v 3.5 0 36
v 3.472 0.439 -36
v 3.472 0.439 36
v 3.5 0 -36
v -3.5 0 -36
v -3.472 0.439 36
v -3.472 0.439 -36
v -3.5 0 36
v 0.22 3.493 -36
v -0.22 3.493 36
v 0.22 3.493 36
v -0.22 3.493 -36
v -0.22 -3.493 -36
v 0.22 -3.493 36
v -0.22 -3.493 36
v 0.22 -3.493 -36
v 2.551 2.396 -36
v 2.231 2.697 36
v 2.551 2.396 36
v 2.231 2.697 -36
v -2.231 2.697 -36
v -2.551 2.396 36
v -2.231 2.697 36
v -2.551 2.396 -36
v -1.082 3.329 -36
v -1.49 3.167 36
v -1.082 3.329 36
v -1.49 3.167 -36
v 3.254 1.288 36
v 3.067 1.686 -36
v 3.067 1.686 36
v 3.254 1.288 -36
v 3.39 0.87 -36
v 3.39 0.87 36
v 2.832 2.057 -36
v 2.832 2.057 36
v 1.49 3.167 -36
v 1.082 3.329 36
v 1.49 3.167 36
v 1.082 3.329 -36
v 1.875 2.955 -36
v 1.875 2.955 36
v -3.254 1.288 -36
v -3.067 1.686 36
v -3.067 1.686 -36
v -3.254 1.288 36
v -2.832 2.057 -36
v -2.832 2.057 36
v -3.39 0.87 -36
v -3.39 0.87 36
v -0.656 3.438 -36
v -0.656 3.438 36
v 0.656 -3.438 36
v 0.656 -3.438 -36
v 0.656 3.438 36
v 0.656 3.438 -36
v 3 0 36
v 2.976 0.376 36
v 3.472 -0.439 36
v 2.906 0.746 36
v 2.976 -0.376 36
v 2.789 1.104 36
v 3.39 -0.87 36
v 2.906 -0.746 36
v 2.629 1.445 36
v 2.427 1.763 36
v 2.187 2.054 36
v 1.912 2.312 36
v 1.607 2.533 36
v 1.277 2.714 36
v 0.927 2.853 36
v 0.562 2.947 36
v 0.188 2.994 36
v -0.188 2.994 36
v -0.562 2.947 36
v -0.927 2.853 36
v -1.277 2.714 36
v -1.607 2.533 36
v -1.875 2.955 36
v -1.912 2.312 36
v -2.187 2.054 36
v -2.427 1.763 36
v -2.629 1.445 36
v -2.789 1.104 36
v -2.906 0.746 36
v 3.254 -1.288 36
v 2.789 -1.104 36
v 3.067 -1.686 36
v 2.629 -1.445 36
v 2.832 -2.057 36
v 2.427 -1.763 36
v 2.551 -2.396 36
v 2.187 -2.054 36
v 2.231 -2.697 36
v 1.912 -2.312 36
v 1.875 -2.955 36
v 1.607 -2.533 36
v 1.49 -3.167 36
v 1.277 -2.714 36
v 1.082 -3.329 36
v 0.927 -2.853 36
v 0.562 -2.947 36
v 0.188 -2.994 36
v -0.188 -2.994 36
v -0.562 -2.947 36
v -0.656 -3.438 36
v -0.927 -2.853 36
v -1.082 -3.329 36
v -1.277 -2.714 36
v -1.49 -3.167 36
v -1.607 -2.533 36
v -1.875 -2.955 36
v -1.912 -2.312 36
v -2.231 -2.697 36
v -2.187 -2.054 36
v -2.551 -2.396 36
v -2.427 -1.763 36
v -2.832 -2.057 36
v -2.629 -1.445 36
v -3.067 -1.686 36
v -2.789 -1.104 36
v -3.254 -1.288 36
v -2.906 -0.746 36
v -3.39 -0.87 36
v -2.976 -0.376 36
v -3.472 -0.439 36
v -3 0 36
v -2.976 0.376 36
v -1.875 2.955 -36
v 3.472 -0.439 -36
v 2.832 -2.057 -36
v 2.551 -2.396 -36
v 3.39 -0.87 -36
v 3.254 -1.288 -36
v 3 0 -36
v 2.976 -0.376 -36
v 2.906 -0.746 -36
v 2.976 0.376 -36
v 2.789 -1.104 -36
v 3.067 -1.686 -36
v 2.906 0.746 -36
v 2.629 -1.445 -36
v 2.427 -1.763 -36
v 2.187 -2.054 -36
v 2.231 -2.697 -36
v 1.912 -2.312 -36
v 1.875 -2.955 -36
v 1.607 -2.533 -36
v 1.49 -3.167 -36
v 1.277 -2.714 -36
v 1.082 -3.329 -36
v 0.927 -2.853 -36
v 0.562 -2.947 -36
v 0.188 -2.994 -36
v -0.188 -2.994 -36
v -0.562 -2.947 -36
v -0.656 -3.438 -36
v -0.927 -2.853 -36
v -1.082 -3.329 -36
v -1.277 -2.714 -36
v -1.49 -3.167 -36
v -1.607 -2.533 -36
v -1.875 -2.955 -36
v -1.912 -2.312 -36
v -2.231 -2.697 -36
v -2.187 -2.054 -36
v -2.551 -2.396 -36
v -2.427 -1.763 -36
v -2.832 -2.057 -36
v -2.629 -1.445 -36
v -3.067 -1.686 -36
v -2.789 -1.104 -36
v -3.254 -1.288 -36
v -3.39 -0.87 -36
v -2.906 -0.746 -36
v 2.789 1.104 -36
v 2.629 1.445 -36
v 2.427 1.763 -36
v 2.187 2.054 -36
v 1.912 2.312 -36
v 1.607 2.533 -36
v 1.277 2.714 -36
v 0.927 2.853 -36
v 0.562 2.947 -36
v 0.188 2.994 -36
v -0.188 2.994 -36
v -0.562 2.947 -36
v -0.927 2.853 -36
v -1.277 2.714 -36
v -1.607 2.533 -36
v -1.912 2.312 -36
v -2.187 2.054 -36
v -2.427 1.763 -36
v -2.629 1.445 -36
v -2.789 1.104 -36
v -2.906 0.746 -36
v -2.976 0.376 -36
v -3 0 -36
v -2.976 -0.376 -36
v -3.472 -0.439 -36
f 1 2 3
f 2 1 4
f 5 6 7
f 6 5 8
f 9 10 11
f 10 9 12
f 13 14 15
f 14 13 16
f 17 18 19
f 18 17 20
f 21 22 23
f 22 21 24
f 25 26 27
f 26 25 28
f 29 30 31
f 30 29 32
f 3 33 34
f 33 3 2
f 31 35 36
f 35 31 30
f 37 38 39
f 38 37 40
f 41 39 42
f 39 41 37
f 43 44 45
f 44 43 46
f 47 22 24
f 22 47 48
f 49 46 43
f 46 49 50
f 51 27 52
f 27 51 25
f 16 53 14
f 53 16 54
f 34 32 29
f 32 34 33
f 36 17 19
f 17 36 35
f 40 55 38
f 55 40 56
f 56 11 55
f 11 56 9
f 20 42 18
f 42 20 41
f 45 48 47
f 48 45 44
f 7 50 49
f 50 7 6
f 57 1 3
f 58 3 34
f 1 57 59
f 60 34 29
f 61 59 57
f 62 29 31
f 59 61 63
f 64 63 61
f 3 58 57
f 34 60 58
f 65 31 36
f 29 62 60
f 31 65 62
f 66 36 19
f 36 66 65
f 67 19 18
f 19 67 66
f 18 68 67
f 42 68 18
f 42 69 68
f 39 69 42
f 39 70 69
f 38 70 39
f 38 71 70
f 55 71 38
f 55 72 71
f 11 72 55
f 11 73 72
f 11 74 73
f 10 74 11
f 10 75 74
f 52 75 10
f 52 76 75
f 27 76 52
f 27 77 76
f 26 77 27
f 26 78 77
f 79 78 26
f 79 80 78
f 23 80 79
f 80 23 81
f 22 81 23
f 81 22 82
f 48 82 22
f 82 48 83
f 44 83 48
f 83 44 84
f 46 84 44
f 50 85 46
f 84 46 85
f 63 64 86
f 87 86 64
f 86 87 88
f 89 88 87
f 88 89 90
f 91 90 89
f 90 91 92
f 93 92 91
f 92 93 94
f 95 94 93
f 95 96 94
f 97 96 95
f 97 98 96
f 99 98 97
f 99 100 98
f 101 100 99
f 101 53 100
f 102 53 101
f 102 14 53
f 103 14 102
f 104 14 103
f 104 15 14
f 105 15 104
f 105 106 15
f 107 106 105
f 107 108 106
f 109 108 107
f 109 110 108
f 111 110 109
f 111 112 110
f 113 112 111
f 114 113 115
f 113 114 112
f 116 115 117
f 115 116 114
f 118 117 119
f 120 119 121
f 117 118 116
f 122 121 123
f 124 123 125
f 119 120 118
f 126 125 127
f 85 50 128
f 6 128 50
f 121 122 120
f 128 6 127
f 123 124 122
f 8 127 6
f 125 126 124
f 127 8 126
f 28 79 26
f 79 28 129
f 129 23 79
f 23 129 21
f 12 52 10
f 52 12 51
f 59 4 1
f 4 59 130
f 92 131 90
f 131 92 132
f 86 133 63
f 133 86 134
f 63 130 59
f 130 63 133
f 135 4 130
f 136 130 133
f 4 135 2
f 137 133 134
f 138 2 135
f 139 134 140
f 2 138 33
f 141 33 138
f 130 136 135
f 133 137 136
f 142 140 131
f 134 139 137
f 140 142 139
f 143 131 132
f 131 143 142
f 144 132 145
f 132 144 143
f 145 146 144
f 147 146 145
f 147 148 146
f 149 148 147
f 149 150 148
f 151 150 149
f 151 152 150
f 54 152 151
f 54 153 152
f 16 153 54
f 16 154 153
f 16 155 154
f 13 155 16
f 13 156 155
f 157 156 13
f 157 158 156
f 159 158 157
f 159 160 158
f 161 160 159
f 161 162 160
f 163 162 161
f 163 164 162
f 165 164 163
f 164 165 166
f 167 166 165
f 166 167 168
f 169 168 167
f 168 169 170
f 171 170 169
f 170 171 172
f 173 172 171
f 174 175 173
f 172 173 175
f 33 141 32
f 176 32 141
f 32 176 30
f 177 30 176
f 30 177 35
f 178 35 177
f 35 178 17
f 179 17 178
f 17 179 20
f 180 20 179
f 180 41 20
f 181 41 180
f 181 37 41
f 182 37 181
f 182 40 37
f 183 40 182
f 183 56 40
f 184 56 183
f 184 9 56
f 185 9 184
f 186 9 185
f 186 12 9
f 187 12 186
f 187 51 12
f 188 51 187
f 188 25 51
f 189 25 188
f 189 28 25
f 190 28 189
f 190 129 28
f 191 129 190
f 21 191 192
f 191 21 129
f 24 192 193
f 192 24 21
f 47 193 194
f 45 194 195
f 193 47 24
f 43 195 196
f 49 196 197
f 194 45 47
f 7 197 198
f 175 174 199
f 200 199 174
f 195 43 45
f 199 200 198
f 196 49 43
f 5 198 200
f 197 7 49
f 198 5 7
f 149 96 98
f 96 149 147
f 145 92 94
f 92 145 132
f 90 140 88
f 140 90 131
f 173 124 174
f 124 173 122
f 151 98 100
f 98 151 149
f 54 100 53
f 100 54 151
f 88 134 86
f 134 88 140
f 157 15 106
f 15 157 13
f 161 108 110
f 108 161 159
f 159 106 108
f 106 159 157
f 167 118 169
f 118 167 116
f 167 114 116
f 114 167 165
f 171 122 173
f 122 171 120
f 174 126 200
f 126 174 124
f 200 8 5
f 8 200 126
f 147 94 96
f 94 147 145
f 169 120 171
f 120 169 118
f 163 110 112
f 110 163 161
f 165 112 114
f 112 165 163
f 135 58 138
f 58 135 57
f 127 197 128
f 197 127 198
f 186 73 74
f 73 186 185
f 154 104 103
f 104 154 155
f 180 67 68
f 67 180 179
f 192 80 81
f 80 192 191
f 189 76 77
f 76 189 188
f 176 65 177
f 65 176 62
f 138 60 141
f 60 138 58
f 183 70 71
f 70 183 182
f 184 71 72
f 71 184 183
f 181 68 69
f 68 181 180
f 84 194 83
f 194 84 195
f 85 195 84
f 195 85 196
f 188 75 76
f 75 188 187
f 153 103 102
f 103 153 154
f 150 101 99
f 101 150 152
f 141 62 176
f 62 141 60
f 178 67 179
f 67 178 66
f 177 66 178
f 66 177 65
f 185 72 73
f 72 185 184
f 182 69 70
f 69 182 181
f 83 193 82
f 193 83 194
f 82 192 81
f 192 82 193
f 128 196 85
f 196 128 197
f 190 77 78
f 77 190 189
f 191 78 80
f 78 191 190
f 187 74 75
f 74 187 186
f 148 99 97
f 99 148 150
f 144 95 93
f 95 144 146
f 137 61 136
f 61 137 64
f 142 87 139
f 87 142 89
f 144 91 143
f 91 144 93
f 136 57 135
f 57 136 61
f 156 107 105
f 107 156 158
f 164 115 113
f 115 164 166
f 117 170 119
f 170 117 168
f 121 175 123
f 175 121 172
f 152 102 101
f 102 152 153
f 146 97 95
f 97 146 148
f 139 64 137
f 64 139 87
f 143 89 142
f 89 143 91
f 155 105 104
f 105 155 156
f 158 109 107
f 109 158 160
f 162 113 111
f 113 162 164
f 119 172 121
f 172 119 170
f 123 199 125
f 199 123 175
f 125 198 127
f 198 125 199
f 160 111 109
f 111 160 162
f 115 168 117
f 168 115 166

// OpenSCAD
$fn = 50;


difference() {
	union() {
		translate(v = [0, 0, -36.0000000000]) {
			cylinder(h = 72, r = 3.5000000000);
		}
	}
	union() {
		translate(v = [0, 0, -100.0000000000]) {
			cylinder(h = 200, r = 3);
		}
	}
}
